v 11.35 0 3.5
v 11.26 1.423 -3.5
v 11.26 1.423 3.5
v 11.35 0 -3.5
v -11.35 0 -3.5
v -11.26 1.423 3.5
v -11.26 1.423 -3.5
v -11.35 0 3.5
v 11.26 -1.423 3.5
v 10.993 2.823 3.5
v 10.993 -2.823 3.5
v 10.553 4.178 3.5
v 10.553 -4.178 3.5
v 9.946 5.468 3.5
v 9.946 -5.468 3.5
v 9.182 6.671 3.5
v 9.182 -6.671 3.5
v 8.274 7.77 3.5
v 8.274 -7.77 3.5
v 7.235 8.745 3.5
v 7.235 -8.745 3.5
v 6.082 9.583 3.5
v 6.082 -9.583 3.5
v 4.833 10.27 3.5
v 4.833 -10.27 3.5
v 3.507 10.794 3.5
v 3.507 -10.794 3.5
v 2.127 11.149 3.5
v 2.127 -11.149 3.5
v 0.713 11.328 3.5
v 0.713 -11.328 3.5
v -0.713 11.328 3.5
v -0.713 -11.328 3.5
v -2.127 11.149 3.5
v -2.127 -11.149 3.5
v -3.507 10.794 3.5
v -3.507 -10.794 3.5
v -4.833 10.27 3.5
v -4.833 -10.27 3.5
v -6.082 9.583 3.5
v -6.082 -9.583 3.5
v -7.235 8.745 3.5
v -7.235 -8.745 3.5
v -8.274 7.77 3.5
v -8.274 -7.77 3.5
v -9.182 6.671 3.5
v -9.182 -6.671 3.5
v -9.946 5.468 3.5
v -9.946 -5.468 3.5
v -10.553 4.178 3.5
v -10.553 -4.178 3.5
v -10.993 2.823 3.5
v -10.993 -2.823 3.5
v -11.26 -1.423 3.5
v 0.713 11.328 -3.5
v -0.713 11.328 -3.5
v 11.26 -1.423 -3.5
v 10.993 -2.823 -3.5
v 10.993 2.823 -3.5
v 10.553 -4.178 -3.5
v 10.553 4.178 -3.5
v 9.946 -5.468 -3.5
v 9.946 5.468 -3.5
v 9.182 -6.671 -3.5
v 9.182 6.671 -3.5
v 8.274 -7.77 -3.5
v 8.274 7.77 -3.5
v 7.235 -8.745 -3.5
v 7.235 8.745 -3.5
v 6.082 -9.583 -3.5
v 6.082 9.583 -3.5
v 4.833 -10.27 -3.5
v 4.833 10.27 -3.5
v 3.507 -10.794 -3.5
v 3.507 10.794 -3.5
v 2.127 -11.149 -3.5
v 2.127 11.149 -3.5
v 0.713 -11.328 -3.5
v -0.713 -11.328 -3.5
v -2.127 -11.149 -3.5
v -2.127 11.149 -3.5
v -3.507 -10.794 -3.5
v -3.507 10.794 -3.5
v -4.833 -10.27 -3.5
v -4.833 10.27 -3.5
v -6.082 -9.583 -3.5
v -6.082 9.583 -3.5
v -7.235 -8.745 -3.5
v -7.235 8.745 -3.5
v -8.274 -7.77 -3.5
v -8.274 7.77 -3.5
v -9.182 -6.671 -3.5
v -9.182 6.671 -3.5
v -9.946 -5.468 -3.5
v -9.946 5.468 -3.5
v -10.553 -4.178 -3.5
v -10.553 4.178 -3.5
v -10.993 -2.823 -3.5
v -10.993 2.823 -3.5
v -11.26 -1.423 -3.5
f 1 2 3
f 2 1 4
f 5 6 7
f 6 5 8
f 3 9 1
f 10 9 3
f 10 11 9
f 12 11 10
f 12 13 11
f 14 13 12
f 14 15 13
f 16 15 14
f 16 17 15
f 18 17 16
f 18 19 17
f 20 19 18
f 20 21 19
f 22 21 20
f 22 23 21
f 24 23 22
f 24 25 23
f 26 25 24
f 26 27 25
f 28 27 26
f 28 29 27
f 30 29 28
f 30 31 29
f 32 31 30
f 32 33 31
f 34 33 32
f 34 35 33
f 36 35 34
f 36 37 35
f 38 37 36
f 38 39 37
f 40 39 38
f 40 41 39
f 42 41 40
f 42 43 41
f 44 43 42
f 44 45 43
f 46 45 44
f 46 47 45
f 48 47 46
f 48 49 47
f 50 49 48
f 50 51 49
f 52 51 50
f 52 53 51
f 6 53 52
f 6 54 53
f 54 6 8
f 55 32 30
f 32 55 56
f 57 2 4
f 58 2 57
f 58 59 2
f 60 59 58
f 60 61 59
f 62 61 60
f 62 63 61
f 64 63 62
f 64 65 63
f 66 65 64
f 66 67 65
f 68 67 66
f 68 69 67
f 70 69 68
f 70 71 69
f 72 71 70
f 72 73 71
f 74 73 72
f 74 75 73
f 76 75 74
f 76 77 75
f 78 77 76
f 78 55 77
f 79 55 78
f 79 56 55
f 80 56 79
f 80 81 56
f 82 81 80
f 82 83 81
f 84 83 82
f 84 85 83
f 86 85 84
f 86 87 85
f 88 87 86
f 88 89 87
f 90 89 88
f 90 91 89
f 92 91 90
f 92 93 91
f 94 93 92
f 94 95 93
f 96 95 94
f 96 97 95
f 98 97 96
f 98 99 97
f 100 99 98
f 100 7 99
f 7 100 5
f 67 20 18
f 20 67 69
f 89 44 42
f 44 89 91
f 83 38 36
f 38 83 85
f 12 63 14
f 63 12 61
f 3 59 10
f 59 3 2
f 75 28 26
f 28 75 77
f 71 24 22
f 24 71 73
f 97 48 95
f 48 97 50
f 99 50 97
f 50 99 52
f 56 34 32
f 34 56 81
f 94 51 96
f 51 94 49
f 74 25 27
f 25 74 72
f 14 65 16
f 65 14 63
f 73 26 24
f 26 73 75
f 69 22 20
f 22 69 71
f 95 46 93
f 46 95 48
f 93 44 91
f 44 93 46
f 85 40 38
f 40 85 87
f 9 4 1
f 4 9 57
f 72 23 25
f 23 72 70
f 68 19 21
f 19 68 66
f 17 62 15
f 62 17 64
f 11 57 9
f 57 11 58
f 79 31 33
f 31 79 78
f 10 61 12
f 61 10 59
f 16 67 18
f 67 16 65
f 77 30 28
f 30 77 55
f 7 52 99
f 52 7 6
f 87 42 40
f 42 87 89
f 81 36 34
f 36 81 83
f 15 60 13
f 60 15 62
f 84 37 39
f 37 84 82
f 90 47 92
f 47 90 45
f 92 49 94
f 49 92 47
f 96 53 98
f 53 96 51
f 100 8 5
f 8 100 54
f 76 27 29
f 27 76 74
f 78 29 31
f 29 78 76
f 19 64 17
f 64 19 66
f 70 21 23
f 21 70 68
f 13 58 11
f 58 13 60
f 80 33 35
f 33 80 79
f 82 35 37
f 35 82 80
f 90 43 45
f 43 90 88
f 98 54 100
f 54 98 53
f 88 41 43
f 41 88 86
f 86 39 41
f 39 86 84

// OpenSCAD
$fn = 50;


difference() {
	union() {
		translate(v = [0, 0, -3.5000000000]) {
			cylinder(h = 7, r = 11.3500000000);
		}
	}
	union() {
		translate(v = [0, 0, -100.0000000000]) {
			cylinder(h = 200, r = 0);
		}
	}
}
